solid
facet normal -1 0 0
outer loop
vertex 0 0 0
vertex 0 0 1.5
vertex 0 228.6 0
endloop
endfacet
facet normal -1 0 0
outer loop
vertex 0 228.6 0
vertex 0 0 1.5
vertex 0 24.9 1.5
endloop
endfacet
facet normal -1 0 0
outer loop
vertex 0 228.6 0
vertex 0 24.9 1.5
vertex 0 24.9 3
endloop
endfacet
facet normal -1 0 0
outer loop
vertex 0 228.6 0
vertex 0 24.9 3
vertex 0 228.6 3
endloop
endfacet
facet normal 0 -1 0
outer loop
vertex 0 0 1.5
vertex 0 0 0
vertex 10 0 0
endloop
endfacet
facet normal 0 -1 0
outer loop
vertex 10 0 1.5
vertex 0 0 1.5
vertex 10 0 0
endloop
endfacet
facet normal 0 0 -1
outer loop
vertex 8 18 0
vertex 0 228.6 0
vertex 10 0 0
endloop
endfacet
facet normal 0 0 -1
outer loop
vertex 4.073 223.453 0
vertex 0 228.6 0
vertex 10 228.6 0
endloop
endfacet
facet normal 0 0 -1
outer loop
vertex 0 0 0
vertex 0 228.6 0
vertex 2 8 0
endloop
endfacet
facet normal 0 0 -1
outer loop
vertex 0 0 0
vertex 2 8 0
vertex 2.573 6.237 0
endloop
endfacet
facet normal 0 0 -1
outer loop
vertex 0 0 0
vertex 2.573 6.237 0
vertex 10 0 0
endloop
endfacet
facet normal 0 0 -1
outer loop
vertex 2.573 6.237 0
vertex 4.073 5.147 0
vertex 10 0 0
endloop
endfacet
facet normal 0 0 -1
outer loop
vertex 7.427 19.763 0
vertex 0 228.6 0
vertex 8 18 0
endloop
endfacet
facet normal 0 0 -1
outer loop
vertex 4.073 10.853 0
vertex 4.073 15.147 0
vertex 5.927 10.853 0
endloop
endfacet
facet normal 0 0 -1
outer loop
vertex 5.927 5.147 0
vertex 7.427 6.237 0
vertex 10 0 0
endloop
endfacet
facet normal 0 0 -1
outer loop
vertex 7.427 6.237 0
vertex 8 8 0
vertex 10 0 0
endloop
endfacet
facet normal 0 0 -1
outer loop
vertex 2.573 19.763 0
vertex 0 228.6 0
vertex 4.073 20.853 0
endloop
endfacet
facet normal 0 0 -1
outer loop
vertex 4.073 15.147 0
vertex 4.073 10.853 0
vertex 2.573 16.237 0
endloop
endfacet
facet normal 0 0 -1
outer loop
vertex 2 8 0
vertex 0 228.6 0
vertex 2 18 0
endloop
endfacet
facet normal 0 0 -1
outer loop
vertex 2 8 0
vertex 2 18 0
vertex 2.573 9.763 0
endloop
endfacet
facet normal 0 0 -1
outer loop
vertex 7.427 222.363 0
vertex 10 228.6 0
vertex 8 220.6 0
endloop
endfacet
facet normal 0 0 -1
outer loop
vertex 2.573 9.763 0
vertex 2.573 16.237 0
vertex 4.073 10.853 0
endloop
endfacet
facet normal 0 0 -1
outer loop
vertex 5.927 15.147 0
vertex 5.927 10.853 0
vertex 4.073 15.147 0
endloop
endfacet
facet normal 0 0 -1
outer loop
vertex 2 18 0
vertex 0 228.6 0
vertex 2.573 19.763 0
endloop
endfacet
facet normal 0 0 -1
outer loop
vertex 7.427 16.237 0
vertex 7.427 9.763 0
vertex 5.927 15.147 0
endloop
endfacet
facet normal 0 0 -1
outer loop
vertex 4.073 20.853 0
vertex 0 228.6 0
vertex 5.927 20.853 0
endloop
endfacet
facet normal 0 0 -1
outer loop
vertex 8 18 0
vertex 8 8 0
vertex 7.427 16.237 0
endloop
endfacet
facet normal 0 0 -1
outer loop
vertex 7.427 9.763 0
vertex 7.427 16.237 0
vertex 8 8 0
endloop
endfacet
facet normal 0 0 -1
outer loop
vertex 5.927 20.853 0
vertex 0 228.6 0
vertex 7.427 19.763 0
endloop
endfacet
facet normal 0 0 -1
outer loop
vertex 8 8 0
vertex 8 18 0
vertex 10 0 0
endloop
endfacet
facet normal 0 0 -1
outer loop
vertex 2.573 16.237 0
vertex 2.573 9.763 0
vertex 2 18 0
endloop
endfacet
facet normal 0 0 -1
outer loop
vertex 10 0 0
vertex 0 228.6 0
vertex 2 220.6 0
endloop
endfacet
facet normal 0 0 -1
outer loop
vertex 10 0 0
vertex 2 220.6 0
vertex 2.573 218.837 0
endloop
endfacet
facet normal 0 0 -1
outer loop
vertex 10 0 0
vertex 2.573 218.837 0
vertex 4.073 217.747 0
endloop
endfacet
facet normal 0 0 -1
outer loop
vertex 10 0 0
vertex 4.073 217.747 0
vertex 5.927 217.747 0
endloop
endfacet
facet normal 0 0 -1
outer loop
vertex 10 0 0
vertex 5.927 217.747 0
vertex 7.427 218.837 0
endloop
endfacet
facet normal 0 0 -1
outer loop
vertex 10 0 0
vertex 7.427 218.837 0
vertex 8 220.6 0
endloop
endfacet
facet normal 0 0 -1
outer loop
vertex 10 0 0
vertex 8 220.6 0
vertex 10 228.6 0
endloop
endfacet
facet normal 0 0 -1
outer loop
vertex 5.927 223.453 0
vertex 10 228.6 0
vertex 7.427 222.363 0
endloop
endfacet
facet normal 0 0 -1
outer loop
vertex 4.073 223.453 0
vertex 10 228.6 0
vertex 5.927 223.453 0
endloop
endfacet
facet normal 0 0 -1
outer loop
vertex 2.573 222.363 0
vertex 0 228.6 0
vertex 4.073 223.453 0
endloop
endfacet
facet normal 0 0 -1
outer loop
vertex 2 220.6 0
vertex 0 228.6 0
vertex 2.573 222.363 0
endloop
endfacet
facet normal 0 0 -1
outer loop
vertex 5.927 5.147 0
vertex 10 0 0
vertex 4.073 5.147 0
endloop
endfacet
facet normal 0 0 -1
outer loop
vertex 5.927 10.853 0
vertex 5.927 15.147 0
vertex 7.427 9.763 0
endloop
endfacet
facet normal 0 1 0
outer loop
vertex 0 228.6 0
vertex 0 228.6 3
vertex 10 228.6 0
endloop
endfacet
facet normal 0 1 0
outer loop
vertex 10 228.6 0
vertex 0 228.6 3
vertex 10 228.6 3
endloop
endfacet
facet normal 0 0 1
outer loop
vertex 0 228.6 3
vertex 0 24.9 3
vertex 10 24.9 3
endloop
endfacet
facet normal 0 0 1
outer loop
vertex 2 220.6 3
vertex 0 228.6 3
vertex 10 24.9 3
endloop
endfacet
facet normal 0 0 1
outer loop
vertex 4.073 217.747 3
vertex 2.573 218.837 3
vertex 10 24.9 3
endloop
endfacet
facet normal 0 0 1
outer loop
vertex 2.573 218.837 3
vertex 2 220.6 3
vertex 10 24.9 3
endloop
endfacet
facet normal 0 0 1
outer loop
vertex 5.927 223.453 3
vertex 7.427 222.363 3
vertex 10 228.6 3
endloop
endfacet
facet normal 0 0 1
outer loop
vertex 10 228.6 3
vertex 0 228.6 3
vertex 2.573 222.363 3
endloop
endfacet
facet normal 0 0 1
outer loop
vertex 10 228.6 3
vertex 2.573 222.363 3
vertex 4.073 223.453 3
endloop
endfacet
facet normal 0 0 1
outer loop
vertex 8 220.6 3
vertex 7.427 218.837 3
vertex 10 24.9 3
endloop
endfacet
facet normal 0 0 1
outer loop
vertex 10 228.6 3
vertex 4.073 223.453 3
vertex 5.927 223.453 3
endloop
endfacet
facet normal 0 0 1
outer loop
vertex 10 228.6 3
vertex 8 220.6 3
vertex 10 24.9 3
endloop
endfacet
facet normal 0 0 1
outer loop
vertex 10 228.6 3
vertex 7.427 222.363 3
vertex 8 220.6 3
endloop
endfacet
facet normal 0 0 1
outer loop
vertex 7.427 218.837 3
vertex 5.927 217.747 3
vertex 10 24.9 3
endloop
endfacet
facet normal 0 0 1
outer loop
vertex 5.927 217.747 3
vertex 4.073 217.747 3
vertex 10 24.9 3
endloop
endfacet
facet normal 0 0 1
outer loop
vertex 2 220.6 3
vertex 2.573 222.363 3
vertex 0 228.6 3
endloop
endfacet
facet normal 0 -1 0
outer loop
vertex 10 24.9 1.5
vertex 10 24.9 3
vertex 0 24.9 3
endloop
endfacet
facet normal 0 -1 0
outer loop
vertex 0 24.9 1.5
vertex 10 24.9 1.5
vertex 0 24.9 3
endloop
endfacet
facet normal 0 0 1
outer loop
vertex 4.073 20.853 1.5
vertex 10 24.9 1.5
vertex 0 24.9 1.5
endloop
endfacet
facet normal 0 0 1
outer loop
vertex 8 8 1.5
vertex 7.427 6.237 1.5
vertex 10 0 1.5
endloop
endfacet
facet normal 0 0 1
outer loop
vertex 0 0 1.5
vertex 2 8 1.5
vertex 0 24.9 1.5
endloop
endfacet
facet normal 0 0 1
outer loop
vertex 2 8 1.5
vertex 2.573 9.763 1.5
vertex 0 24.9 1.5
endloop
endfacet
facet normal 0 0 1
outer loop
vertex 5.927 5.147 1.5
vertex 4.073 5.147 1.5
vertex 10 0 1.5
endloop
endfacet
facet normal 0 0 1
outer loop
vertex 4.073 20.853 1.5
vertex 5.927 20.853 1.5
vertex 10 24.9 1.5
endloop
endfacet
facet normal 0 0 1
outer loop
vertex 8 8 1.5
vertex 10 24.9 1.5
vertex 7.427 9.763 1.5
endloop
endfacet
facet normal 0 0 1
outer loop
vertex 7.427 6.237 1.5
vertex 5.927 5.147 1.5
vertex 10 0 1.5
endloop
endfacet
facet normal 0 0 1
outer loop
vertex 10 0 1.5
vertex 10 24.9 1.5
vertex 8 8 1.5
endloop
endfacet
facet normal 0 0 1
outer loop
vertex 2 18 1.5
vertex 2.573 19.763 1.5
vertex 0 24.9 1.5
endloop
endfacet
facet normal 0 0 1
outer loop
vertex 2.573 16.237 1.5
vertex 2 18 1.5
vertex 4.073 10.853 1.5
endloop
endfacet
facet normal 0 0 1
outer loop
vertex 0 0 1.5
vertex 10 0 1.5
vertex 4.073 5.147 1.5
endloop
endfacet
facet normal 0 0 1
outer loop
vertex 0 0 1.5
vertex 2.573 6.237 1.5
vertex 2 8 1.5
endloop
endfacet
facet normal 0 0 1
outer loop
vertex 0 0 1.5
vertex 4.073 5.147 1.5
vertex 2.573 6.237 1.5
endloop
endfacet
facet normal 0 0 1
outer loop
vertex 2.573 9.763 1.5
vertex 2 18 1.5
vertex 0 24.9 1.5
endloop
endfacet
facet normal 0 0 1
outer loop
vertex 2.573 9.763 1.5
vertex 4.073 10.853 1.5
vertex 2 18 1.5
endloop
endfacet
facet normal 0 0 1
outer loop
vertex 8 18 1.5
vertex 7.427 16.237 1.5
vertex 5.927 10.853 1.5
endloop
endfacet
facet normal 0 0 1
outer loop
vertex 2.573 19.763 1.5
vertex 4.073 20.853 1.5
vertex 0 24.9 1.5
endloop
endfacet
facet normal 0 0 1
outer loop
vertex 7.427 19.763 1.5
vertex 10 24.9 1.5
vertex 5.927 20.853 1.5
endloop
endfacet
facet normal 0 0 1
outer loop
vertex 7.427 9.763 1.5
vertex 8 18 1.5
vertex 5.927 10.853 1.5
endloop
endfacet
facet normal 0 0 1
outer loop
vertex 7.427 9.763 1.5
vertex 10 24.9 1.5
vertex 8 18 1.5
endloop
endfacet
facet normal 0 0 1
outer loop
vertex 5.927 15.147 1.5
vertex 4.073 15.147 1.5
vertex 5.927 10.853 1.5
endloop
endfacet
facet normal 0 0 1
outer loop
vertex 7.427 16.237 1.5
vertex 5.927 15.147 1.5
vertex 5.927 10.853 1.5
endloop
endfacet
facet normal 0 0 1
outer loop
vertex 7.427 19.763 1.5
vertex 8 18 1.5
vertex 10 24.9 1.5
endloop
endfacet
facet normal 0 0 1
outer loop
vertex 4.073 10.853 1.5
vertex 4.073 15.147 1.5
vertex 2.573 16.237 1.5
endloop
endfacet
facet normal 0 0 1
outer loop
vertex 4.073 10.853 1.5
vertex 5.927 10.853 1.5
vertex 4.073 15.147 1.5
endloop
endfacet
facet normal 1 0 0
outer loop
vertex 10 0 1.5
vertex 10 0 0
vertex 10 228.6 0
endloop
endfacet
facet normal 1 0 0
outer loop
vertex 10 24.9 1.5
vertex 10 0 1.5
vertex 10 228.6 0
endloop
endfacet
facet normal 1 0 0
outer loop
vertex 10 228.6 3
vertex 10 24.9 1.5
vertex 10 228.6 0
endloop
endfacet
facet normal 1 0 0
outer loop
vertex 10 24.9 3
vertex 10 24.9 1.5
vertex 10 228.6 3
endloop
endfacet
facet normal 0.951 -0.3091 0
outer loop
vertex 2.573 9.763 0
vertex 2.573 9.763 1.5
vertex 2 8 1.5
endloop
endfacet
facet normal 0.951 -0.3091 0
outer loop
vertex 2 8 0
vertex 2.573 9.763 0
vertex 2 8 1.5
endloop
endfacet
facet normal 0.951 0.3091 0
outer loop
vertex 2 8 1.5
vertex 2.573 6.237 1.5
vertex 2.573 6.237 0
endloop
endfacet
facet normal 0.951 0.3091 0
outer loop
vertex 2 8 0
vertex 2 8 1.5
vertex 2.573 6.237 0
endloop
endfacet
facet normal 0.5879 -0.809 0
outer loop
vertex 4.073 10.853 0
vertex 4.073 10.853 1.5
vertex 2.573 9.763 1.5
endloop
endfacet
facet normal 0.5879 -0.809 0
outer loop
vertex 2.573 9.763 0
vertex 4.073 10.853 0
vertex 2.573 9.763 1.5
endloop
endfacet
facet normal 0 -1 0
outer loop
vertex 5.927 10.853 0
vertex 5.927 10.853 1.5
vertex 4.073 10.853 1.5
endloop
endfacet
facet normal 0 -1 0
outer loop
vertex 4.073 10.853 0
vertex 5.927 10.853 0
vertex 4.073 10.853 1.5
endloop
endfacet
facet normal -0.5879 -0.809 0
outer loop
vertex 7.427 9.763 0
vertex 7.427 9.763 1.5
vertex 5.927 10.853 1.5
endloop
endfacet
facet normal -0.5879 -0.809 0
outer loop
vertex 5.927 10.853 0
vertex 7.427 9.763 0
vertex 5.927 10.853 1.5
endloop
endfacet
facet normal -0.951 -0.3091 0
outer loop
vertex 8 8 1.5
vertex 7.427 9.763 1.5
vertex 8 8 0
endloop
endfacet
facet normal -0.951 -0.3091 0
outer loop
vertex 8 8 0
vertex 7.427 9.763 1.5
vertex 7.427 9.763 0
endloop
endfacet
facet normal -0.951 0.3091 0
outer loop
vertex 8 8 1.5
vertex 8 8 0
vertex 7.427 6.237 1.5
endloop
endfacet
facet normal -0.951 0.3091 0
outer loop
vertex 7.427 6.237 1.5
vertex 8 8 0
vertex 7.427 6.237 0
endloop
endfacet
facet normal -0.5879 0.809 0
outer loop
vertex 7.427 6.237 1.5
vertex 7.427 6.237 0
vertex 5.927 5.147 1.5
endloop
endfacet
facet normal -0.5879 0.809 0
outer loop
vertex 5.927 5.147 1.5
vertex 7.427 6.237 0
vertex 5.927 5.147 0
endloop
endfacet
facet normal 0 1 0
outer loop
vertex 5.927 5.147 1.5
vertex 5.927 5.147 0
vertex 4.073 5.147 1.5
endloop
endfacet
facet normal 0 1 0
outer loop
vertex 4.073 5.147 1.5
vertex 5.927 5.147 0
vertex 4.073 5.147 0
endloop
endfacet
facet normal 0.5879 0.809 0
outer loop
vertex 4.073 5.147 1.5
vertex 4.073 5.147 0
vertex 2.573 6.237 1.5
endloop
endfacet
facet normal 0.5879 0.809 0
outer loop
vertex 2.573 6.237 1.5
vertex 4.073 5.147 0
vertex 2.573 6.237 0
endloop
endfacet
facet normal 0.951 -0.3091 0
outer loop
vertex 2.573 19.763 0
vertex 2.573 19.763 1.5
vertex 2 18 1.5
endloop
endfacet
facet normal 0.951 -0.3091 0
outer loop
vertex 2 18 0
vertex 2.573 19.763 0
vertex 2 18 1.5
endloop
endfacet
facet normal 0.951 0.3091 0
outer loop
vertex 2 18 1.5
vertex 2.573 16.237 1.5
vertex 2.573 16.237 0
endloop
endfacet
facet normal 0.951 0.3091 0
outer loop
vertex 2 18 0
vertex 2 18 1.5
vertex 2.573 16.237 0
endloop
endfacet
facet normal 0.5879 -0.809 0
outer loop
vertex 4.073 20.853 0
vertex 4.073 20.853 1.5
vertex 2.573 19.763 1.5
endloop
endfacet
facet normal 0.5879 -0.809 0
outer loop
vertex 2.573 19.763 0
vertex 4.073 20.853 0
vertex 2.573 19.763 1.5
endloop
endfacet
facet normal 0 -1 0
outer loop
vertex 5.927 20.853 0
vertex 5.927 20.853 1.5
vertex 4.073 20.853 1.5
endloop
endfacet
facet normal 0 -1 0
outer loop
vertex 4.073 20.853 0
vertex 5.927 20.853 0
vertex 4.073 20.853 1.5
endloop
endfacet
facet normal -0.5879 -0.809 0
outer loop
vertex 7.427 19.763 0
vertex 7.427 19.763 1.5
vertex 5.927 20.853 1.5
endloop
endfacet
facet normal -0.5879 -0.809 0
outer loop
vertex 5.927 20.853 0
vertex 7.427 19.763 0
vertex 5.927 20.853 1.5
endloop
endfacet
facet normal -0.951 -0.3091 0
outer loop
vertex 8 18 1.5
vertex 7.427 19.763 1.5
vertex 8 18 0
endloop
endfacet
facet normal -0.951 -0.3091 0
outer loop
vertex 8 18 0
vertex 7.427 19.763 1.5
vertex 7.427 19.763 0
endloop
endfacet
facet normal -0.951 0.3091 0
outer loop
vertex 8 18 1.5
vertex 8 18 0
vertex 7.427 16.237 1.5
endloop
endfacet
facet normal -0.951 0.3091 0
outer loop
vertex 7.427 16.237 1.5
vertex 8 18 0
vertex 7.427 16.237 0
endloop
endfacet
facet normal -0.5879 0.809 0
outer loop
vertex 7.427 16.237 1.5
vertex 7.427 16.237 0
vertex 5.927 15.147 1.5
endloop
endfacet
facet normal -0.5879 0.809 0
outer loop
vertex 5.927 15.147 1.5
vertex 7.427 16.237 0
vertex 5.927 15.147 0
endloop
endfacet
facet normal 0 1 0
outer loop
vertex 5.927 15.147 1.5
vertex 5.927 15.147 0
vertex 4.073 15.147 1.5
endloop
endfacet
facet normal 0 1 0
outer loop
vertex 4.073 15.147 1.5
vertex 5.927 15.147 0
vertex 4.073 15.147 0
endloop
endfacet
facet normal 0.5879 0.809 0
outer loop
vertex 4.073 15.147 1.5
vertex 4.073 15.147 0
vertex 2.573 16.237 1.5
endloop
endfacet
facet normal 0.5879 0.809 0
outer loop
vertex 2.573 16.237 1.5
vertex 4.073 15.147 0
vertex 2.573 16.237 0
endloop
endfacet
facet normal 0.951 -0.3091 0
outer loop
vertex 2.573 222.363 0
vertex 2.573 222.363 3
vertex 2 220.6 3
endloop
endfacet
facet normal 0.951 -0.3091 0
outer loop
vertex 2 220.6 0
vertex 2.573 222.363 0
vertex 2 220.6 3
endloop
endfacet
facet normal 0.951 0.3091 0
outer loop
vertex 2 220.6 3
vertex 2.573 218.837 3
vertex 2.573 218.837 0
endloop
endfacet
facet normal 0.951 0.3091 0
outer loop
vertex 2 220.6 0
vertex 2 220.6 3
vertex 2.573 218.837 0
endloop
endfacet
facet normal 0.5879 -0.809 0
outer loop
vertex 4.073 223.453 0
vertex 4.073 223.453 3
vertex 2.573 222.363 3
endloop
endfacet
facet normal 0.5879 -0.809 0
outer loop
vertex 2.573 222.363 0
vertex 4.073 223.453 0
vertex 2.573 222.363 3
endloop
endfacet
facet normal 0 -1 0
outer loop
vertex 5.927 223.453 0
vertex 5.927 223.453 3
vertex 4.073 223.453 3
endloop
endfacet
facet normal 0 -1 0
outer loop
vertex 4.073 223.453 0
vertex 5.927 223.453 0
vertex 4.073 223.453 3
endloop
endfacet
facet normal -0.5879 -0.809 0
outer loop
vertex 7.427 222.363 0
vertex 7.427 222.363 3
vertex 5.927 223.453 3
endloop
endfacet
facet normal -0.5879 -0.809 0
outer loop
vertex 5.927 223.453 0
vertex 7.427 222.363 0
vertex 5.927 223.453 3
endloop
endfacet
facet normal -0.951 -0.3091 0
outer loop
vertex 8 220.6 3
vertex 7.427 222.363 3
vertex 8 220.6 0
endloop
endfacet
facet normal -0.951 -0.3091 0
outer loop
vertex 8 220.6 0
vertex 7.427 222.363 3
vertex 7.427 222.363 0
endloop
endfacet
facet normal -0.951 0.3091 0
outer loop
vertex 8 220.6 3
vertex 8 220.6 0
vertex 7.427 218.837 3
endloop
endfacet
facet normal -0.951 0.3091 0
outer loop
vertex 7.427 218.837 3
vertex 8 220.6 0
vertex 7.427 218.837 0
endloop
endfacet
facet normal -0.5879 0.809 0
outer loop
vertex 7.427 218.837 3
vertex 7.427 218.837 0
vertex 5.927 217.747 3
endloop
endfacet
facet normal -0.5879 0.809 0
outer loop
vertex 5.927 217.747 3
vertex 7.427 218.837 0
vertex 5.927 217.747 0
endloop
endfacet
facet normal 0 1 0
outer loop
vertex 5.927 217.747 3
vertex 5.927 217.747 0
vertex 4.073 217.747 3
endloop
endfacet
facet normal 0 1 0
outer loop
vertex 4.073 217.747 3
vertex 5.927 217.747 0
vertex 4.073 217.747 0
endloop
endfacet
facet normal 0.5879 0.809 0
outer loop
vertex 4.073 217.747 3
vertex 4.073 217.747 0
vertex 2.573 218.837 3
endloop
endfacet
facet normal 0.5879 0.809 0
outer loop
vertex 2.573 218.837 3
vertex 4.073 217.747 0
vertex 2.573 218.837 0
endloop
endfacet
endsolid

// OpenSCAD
W = 10;
L = 228.6;
H1 = 3;
H2 = H1/2;
R = 3;

difference() {
    cube([W,L,H1]);
    translate([W/2,8,0]) cylinder(h=40,r=R,center=true);
    translate([W/2,18,0]) cylinder(h=40,r=R,center=true);
    translate([W/2,L-8,0]) cylinder(h=40,r=R,center=true);
    translate([-.1,-.1,H1/2]) cube([W*2,25,40]);
}
